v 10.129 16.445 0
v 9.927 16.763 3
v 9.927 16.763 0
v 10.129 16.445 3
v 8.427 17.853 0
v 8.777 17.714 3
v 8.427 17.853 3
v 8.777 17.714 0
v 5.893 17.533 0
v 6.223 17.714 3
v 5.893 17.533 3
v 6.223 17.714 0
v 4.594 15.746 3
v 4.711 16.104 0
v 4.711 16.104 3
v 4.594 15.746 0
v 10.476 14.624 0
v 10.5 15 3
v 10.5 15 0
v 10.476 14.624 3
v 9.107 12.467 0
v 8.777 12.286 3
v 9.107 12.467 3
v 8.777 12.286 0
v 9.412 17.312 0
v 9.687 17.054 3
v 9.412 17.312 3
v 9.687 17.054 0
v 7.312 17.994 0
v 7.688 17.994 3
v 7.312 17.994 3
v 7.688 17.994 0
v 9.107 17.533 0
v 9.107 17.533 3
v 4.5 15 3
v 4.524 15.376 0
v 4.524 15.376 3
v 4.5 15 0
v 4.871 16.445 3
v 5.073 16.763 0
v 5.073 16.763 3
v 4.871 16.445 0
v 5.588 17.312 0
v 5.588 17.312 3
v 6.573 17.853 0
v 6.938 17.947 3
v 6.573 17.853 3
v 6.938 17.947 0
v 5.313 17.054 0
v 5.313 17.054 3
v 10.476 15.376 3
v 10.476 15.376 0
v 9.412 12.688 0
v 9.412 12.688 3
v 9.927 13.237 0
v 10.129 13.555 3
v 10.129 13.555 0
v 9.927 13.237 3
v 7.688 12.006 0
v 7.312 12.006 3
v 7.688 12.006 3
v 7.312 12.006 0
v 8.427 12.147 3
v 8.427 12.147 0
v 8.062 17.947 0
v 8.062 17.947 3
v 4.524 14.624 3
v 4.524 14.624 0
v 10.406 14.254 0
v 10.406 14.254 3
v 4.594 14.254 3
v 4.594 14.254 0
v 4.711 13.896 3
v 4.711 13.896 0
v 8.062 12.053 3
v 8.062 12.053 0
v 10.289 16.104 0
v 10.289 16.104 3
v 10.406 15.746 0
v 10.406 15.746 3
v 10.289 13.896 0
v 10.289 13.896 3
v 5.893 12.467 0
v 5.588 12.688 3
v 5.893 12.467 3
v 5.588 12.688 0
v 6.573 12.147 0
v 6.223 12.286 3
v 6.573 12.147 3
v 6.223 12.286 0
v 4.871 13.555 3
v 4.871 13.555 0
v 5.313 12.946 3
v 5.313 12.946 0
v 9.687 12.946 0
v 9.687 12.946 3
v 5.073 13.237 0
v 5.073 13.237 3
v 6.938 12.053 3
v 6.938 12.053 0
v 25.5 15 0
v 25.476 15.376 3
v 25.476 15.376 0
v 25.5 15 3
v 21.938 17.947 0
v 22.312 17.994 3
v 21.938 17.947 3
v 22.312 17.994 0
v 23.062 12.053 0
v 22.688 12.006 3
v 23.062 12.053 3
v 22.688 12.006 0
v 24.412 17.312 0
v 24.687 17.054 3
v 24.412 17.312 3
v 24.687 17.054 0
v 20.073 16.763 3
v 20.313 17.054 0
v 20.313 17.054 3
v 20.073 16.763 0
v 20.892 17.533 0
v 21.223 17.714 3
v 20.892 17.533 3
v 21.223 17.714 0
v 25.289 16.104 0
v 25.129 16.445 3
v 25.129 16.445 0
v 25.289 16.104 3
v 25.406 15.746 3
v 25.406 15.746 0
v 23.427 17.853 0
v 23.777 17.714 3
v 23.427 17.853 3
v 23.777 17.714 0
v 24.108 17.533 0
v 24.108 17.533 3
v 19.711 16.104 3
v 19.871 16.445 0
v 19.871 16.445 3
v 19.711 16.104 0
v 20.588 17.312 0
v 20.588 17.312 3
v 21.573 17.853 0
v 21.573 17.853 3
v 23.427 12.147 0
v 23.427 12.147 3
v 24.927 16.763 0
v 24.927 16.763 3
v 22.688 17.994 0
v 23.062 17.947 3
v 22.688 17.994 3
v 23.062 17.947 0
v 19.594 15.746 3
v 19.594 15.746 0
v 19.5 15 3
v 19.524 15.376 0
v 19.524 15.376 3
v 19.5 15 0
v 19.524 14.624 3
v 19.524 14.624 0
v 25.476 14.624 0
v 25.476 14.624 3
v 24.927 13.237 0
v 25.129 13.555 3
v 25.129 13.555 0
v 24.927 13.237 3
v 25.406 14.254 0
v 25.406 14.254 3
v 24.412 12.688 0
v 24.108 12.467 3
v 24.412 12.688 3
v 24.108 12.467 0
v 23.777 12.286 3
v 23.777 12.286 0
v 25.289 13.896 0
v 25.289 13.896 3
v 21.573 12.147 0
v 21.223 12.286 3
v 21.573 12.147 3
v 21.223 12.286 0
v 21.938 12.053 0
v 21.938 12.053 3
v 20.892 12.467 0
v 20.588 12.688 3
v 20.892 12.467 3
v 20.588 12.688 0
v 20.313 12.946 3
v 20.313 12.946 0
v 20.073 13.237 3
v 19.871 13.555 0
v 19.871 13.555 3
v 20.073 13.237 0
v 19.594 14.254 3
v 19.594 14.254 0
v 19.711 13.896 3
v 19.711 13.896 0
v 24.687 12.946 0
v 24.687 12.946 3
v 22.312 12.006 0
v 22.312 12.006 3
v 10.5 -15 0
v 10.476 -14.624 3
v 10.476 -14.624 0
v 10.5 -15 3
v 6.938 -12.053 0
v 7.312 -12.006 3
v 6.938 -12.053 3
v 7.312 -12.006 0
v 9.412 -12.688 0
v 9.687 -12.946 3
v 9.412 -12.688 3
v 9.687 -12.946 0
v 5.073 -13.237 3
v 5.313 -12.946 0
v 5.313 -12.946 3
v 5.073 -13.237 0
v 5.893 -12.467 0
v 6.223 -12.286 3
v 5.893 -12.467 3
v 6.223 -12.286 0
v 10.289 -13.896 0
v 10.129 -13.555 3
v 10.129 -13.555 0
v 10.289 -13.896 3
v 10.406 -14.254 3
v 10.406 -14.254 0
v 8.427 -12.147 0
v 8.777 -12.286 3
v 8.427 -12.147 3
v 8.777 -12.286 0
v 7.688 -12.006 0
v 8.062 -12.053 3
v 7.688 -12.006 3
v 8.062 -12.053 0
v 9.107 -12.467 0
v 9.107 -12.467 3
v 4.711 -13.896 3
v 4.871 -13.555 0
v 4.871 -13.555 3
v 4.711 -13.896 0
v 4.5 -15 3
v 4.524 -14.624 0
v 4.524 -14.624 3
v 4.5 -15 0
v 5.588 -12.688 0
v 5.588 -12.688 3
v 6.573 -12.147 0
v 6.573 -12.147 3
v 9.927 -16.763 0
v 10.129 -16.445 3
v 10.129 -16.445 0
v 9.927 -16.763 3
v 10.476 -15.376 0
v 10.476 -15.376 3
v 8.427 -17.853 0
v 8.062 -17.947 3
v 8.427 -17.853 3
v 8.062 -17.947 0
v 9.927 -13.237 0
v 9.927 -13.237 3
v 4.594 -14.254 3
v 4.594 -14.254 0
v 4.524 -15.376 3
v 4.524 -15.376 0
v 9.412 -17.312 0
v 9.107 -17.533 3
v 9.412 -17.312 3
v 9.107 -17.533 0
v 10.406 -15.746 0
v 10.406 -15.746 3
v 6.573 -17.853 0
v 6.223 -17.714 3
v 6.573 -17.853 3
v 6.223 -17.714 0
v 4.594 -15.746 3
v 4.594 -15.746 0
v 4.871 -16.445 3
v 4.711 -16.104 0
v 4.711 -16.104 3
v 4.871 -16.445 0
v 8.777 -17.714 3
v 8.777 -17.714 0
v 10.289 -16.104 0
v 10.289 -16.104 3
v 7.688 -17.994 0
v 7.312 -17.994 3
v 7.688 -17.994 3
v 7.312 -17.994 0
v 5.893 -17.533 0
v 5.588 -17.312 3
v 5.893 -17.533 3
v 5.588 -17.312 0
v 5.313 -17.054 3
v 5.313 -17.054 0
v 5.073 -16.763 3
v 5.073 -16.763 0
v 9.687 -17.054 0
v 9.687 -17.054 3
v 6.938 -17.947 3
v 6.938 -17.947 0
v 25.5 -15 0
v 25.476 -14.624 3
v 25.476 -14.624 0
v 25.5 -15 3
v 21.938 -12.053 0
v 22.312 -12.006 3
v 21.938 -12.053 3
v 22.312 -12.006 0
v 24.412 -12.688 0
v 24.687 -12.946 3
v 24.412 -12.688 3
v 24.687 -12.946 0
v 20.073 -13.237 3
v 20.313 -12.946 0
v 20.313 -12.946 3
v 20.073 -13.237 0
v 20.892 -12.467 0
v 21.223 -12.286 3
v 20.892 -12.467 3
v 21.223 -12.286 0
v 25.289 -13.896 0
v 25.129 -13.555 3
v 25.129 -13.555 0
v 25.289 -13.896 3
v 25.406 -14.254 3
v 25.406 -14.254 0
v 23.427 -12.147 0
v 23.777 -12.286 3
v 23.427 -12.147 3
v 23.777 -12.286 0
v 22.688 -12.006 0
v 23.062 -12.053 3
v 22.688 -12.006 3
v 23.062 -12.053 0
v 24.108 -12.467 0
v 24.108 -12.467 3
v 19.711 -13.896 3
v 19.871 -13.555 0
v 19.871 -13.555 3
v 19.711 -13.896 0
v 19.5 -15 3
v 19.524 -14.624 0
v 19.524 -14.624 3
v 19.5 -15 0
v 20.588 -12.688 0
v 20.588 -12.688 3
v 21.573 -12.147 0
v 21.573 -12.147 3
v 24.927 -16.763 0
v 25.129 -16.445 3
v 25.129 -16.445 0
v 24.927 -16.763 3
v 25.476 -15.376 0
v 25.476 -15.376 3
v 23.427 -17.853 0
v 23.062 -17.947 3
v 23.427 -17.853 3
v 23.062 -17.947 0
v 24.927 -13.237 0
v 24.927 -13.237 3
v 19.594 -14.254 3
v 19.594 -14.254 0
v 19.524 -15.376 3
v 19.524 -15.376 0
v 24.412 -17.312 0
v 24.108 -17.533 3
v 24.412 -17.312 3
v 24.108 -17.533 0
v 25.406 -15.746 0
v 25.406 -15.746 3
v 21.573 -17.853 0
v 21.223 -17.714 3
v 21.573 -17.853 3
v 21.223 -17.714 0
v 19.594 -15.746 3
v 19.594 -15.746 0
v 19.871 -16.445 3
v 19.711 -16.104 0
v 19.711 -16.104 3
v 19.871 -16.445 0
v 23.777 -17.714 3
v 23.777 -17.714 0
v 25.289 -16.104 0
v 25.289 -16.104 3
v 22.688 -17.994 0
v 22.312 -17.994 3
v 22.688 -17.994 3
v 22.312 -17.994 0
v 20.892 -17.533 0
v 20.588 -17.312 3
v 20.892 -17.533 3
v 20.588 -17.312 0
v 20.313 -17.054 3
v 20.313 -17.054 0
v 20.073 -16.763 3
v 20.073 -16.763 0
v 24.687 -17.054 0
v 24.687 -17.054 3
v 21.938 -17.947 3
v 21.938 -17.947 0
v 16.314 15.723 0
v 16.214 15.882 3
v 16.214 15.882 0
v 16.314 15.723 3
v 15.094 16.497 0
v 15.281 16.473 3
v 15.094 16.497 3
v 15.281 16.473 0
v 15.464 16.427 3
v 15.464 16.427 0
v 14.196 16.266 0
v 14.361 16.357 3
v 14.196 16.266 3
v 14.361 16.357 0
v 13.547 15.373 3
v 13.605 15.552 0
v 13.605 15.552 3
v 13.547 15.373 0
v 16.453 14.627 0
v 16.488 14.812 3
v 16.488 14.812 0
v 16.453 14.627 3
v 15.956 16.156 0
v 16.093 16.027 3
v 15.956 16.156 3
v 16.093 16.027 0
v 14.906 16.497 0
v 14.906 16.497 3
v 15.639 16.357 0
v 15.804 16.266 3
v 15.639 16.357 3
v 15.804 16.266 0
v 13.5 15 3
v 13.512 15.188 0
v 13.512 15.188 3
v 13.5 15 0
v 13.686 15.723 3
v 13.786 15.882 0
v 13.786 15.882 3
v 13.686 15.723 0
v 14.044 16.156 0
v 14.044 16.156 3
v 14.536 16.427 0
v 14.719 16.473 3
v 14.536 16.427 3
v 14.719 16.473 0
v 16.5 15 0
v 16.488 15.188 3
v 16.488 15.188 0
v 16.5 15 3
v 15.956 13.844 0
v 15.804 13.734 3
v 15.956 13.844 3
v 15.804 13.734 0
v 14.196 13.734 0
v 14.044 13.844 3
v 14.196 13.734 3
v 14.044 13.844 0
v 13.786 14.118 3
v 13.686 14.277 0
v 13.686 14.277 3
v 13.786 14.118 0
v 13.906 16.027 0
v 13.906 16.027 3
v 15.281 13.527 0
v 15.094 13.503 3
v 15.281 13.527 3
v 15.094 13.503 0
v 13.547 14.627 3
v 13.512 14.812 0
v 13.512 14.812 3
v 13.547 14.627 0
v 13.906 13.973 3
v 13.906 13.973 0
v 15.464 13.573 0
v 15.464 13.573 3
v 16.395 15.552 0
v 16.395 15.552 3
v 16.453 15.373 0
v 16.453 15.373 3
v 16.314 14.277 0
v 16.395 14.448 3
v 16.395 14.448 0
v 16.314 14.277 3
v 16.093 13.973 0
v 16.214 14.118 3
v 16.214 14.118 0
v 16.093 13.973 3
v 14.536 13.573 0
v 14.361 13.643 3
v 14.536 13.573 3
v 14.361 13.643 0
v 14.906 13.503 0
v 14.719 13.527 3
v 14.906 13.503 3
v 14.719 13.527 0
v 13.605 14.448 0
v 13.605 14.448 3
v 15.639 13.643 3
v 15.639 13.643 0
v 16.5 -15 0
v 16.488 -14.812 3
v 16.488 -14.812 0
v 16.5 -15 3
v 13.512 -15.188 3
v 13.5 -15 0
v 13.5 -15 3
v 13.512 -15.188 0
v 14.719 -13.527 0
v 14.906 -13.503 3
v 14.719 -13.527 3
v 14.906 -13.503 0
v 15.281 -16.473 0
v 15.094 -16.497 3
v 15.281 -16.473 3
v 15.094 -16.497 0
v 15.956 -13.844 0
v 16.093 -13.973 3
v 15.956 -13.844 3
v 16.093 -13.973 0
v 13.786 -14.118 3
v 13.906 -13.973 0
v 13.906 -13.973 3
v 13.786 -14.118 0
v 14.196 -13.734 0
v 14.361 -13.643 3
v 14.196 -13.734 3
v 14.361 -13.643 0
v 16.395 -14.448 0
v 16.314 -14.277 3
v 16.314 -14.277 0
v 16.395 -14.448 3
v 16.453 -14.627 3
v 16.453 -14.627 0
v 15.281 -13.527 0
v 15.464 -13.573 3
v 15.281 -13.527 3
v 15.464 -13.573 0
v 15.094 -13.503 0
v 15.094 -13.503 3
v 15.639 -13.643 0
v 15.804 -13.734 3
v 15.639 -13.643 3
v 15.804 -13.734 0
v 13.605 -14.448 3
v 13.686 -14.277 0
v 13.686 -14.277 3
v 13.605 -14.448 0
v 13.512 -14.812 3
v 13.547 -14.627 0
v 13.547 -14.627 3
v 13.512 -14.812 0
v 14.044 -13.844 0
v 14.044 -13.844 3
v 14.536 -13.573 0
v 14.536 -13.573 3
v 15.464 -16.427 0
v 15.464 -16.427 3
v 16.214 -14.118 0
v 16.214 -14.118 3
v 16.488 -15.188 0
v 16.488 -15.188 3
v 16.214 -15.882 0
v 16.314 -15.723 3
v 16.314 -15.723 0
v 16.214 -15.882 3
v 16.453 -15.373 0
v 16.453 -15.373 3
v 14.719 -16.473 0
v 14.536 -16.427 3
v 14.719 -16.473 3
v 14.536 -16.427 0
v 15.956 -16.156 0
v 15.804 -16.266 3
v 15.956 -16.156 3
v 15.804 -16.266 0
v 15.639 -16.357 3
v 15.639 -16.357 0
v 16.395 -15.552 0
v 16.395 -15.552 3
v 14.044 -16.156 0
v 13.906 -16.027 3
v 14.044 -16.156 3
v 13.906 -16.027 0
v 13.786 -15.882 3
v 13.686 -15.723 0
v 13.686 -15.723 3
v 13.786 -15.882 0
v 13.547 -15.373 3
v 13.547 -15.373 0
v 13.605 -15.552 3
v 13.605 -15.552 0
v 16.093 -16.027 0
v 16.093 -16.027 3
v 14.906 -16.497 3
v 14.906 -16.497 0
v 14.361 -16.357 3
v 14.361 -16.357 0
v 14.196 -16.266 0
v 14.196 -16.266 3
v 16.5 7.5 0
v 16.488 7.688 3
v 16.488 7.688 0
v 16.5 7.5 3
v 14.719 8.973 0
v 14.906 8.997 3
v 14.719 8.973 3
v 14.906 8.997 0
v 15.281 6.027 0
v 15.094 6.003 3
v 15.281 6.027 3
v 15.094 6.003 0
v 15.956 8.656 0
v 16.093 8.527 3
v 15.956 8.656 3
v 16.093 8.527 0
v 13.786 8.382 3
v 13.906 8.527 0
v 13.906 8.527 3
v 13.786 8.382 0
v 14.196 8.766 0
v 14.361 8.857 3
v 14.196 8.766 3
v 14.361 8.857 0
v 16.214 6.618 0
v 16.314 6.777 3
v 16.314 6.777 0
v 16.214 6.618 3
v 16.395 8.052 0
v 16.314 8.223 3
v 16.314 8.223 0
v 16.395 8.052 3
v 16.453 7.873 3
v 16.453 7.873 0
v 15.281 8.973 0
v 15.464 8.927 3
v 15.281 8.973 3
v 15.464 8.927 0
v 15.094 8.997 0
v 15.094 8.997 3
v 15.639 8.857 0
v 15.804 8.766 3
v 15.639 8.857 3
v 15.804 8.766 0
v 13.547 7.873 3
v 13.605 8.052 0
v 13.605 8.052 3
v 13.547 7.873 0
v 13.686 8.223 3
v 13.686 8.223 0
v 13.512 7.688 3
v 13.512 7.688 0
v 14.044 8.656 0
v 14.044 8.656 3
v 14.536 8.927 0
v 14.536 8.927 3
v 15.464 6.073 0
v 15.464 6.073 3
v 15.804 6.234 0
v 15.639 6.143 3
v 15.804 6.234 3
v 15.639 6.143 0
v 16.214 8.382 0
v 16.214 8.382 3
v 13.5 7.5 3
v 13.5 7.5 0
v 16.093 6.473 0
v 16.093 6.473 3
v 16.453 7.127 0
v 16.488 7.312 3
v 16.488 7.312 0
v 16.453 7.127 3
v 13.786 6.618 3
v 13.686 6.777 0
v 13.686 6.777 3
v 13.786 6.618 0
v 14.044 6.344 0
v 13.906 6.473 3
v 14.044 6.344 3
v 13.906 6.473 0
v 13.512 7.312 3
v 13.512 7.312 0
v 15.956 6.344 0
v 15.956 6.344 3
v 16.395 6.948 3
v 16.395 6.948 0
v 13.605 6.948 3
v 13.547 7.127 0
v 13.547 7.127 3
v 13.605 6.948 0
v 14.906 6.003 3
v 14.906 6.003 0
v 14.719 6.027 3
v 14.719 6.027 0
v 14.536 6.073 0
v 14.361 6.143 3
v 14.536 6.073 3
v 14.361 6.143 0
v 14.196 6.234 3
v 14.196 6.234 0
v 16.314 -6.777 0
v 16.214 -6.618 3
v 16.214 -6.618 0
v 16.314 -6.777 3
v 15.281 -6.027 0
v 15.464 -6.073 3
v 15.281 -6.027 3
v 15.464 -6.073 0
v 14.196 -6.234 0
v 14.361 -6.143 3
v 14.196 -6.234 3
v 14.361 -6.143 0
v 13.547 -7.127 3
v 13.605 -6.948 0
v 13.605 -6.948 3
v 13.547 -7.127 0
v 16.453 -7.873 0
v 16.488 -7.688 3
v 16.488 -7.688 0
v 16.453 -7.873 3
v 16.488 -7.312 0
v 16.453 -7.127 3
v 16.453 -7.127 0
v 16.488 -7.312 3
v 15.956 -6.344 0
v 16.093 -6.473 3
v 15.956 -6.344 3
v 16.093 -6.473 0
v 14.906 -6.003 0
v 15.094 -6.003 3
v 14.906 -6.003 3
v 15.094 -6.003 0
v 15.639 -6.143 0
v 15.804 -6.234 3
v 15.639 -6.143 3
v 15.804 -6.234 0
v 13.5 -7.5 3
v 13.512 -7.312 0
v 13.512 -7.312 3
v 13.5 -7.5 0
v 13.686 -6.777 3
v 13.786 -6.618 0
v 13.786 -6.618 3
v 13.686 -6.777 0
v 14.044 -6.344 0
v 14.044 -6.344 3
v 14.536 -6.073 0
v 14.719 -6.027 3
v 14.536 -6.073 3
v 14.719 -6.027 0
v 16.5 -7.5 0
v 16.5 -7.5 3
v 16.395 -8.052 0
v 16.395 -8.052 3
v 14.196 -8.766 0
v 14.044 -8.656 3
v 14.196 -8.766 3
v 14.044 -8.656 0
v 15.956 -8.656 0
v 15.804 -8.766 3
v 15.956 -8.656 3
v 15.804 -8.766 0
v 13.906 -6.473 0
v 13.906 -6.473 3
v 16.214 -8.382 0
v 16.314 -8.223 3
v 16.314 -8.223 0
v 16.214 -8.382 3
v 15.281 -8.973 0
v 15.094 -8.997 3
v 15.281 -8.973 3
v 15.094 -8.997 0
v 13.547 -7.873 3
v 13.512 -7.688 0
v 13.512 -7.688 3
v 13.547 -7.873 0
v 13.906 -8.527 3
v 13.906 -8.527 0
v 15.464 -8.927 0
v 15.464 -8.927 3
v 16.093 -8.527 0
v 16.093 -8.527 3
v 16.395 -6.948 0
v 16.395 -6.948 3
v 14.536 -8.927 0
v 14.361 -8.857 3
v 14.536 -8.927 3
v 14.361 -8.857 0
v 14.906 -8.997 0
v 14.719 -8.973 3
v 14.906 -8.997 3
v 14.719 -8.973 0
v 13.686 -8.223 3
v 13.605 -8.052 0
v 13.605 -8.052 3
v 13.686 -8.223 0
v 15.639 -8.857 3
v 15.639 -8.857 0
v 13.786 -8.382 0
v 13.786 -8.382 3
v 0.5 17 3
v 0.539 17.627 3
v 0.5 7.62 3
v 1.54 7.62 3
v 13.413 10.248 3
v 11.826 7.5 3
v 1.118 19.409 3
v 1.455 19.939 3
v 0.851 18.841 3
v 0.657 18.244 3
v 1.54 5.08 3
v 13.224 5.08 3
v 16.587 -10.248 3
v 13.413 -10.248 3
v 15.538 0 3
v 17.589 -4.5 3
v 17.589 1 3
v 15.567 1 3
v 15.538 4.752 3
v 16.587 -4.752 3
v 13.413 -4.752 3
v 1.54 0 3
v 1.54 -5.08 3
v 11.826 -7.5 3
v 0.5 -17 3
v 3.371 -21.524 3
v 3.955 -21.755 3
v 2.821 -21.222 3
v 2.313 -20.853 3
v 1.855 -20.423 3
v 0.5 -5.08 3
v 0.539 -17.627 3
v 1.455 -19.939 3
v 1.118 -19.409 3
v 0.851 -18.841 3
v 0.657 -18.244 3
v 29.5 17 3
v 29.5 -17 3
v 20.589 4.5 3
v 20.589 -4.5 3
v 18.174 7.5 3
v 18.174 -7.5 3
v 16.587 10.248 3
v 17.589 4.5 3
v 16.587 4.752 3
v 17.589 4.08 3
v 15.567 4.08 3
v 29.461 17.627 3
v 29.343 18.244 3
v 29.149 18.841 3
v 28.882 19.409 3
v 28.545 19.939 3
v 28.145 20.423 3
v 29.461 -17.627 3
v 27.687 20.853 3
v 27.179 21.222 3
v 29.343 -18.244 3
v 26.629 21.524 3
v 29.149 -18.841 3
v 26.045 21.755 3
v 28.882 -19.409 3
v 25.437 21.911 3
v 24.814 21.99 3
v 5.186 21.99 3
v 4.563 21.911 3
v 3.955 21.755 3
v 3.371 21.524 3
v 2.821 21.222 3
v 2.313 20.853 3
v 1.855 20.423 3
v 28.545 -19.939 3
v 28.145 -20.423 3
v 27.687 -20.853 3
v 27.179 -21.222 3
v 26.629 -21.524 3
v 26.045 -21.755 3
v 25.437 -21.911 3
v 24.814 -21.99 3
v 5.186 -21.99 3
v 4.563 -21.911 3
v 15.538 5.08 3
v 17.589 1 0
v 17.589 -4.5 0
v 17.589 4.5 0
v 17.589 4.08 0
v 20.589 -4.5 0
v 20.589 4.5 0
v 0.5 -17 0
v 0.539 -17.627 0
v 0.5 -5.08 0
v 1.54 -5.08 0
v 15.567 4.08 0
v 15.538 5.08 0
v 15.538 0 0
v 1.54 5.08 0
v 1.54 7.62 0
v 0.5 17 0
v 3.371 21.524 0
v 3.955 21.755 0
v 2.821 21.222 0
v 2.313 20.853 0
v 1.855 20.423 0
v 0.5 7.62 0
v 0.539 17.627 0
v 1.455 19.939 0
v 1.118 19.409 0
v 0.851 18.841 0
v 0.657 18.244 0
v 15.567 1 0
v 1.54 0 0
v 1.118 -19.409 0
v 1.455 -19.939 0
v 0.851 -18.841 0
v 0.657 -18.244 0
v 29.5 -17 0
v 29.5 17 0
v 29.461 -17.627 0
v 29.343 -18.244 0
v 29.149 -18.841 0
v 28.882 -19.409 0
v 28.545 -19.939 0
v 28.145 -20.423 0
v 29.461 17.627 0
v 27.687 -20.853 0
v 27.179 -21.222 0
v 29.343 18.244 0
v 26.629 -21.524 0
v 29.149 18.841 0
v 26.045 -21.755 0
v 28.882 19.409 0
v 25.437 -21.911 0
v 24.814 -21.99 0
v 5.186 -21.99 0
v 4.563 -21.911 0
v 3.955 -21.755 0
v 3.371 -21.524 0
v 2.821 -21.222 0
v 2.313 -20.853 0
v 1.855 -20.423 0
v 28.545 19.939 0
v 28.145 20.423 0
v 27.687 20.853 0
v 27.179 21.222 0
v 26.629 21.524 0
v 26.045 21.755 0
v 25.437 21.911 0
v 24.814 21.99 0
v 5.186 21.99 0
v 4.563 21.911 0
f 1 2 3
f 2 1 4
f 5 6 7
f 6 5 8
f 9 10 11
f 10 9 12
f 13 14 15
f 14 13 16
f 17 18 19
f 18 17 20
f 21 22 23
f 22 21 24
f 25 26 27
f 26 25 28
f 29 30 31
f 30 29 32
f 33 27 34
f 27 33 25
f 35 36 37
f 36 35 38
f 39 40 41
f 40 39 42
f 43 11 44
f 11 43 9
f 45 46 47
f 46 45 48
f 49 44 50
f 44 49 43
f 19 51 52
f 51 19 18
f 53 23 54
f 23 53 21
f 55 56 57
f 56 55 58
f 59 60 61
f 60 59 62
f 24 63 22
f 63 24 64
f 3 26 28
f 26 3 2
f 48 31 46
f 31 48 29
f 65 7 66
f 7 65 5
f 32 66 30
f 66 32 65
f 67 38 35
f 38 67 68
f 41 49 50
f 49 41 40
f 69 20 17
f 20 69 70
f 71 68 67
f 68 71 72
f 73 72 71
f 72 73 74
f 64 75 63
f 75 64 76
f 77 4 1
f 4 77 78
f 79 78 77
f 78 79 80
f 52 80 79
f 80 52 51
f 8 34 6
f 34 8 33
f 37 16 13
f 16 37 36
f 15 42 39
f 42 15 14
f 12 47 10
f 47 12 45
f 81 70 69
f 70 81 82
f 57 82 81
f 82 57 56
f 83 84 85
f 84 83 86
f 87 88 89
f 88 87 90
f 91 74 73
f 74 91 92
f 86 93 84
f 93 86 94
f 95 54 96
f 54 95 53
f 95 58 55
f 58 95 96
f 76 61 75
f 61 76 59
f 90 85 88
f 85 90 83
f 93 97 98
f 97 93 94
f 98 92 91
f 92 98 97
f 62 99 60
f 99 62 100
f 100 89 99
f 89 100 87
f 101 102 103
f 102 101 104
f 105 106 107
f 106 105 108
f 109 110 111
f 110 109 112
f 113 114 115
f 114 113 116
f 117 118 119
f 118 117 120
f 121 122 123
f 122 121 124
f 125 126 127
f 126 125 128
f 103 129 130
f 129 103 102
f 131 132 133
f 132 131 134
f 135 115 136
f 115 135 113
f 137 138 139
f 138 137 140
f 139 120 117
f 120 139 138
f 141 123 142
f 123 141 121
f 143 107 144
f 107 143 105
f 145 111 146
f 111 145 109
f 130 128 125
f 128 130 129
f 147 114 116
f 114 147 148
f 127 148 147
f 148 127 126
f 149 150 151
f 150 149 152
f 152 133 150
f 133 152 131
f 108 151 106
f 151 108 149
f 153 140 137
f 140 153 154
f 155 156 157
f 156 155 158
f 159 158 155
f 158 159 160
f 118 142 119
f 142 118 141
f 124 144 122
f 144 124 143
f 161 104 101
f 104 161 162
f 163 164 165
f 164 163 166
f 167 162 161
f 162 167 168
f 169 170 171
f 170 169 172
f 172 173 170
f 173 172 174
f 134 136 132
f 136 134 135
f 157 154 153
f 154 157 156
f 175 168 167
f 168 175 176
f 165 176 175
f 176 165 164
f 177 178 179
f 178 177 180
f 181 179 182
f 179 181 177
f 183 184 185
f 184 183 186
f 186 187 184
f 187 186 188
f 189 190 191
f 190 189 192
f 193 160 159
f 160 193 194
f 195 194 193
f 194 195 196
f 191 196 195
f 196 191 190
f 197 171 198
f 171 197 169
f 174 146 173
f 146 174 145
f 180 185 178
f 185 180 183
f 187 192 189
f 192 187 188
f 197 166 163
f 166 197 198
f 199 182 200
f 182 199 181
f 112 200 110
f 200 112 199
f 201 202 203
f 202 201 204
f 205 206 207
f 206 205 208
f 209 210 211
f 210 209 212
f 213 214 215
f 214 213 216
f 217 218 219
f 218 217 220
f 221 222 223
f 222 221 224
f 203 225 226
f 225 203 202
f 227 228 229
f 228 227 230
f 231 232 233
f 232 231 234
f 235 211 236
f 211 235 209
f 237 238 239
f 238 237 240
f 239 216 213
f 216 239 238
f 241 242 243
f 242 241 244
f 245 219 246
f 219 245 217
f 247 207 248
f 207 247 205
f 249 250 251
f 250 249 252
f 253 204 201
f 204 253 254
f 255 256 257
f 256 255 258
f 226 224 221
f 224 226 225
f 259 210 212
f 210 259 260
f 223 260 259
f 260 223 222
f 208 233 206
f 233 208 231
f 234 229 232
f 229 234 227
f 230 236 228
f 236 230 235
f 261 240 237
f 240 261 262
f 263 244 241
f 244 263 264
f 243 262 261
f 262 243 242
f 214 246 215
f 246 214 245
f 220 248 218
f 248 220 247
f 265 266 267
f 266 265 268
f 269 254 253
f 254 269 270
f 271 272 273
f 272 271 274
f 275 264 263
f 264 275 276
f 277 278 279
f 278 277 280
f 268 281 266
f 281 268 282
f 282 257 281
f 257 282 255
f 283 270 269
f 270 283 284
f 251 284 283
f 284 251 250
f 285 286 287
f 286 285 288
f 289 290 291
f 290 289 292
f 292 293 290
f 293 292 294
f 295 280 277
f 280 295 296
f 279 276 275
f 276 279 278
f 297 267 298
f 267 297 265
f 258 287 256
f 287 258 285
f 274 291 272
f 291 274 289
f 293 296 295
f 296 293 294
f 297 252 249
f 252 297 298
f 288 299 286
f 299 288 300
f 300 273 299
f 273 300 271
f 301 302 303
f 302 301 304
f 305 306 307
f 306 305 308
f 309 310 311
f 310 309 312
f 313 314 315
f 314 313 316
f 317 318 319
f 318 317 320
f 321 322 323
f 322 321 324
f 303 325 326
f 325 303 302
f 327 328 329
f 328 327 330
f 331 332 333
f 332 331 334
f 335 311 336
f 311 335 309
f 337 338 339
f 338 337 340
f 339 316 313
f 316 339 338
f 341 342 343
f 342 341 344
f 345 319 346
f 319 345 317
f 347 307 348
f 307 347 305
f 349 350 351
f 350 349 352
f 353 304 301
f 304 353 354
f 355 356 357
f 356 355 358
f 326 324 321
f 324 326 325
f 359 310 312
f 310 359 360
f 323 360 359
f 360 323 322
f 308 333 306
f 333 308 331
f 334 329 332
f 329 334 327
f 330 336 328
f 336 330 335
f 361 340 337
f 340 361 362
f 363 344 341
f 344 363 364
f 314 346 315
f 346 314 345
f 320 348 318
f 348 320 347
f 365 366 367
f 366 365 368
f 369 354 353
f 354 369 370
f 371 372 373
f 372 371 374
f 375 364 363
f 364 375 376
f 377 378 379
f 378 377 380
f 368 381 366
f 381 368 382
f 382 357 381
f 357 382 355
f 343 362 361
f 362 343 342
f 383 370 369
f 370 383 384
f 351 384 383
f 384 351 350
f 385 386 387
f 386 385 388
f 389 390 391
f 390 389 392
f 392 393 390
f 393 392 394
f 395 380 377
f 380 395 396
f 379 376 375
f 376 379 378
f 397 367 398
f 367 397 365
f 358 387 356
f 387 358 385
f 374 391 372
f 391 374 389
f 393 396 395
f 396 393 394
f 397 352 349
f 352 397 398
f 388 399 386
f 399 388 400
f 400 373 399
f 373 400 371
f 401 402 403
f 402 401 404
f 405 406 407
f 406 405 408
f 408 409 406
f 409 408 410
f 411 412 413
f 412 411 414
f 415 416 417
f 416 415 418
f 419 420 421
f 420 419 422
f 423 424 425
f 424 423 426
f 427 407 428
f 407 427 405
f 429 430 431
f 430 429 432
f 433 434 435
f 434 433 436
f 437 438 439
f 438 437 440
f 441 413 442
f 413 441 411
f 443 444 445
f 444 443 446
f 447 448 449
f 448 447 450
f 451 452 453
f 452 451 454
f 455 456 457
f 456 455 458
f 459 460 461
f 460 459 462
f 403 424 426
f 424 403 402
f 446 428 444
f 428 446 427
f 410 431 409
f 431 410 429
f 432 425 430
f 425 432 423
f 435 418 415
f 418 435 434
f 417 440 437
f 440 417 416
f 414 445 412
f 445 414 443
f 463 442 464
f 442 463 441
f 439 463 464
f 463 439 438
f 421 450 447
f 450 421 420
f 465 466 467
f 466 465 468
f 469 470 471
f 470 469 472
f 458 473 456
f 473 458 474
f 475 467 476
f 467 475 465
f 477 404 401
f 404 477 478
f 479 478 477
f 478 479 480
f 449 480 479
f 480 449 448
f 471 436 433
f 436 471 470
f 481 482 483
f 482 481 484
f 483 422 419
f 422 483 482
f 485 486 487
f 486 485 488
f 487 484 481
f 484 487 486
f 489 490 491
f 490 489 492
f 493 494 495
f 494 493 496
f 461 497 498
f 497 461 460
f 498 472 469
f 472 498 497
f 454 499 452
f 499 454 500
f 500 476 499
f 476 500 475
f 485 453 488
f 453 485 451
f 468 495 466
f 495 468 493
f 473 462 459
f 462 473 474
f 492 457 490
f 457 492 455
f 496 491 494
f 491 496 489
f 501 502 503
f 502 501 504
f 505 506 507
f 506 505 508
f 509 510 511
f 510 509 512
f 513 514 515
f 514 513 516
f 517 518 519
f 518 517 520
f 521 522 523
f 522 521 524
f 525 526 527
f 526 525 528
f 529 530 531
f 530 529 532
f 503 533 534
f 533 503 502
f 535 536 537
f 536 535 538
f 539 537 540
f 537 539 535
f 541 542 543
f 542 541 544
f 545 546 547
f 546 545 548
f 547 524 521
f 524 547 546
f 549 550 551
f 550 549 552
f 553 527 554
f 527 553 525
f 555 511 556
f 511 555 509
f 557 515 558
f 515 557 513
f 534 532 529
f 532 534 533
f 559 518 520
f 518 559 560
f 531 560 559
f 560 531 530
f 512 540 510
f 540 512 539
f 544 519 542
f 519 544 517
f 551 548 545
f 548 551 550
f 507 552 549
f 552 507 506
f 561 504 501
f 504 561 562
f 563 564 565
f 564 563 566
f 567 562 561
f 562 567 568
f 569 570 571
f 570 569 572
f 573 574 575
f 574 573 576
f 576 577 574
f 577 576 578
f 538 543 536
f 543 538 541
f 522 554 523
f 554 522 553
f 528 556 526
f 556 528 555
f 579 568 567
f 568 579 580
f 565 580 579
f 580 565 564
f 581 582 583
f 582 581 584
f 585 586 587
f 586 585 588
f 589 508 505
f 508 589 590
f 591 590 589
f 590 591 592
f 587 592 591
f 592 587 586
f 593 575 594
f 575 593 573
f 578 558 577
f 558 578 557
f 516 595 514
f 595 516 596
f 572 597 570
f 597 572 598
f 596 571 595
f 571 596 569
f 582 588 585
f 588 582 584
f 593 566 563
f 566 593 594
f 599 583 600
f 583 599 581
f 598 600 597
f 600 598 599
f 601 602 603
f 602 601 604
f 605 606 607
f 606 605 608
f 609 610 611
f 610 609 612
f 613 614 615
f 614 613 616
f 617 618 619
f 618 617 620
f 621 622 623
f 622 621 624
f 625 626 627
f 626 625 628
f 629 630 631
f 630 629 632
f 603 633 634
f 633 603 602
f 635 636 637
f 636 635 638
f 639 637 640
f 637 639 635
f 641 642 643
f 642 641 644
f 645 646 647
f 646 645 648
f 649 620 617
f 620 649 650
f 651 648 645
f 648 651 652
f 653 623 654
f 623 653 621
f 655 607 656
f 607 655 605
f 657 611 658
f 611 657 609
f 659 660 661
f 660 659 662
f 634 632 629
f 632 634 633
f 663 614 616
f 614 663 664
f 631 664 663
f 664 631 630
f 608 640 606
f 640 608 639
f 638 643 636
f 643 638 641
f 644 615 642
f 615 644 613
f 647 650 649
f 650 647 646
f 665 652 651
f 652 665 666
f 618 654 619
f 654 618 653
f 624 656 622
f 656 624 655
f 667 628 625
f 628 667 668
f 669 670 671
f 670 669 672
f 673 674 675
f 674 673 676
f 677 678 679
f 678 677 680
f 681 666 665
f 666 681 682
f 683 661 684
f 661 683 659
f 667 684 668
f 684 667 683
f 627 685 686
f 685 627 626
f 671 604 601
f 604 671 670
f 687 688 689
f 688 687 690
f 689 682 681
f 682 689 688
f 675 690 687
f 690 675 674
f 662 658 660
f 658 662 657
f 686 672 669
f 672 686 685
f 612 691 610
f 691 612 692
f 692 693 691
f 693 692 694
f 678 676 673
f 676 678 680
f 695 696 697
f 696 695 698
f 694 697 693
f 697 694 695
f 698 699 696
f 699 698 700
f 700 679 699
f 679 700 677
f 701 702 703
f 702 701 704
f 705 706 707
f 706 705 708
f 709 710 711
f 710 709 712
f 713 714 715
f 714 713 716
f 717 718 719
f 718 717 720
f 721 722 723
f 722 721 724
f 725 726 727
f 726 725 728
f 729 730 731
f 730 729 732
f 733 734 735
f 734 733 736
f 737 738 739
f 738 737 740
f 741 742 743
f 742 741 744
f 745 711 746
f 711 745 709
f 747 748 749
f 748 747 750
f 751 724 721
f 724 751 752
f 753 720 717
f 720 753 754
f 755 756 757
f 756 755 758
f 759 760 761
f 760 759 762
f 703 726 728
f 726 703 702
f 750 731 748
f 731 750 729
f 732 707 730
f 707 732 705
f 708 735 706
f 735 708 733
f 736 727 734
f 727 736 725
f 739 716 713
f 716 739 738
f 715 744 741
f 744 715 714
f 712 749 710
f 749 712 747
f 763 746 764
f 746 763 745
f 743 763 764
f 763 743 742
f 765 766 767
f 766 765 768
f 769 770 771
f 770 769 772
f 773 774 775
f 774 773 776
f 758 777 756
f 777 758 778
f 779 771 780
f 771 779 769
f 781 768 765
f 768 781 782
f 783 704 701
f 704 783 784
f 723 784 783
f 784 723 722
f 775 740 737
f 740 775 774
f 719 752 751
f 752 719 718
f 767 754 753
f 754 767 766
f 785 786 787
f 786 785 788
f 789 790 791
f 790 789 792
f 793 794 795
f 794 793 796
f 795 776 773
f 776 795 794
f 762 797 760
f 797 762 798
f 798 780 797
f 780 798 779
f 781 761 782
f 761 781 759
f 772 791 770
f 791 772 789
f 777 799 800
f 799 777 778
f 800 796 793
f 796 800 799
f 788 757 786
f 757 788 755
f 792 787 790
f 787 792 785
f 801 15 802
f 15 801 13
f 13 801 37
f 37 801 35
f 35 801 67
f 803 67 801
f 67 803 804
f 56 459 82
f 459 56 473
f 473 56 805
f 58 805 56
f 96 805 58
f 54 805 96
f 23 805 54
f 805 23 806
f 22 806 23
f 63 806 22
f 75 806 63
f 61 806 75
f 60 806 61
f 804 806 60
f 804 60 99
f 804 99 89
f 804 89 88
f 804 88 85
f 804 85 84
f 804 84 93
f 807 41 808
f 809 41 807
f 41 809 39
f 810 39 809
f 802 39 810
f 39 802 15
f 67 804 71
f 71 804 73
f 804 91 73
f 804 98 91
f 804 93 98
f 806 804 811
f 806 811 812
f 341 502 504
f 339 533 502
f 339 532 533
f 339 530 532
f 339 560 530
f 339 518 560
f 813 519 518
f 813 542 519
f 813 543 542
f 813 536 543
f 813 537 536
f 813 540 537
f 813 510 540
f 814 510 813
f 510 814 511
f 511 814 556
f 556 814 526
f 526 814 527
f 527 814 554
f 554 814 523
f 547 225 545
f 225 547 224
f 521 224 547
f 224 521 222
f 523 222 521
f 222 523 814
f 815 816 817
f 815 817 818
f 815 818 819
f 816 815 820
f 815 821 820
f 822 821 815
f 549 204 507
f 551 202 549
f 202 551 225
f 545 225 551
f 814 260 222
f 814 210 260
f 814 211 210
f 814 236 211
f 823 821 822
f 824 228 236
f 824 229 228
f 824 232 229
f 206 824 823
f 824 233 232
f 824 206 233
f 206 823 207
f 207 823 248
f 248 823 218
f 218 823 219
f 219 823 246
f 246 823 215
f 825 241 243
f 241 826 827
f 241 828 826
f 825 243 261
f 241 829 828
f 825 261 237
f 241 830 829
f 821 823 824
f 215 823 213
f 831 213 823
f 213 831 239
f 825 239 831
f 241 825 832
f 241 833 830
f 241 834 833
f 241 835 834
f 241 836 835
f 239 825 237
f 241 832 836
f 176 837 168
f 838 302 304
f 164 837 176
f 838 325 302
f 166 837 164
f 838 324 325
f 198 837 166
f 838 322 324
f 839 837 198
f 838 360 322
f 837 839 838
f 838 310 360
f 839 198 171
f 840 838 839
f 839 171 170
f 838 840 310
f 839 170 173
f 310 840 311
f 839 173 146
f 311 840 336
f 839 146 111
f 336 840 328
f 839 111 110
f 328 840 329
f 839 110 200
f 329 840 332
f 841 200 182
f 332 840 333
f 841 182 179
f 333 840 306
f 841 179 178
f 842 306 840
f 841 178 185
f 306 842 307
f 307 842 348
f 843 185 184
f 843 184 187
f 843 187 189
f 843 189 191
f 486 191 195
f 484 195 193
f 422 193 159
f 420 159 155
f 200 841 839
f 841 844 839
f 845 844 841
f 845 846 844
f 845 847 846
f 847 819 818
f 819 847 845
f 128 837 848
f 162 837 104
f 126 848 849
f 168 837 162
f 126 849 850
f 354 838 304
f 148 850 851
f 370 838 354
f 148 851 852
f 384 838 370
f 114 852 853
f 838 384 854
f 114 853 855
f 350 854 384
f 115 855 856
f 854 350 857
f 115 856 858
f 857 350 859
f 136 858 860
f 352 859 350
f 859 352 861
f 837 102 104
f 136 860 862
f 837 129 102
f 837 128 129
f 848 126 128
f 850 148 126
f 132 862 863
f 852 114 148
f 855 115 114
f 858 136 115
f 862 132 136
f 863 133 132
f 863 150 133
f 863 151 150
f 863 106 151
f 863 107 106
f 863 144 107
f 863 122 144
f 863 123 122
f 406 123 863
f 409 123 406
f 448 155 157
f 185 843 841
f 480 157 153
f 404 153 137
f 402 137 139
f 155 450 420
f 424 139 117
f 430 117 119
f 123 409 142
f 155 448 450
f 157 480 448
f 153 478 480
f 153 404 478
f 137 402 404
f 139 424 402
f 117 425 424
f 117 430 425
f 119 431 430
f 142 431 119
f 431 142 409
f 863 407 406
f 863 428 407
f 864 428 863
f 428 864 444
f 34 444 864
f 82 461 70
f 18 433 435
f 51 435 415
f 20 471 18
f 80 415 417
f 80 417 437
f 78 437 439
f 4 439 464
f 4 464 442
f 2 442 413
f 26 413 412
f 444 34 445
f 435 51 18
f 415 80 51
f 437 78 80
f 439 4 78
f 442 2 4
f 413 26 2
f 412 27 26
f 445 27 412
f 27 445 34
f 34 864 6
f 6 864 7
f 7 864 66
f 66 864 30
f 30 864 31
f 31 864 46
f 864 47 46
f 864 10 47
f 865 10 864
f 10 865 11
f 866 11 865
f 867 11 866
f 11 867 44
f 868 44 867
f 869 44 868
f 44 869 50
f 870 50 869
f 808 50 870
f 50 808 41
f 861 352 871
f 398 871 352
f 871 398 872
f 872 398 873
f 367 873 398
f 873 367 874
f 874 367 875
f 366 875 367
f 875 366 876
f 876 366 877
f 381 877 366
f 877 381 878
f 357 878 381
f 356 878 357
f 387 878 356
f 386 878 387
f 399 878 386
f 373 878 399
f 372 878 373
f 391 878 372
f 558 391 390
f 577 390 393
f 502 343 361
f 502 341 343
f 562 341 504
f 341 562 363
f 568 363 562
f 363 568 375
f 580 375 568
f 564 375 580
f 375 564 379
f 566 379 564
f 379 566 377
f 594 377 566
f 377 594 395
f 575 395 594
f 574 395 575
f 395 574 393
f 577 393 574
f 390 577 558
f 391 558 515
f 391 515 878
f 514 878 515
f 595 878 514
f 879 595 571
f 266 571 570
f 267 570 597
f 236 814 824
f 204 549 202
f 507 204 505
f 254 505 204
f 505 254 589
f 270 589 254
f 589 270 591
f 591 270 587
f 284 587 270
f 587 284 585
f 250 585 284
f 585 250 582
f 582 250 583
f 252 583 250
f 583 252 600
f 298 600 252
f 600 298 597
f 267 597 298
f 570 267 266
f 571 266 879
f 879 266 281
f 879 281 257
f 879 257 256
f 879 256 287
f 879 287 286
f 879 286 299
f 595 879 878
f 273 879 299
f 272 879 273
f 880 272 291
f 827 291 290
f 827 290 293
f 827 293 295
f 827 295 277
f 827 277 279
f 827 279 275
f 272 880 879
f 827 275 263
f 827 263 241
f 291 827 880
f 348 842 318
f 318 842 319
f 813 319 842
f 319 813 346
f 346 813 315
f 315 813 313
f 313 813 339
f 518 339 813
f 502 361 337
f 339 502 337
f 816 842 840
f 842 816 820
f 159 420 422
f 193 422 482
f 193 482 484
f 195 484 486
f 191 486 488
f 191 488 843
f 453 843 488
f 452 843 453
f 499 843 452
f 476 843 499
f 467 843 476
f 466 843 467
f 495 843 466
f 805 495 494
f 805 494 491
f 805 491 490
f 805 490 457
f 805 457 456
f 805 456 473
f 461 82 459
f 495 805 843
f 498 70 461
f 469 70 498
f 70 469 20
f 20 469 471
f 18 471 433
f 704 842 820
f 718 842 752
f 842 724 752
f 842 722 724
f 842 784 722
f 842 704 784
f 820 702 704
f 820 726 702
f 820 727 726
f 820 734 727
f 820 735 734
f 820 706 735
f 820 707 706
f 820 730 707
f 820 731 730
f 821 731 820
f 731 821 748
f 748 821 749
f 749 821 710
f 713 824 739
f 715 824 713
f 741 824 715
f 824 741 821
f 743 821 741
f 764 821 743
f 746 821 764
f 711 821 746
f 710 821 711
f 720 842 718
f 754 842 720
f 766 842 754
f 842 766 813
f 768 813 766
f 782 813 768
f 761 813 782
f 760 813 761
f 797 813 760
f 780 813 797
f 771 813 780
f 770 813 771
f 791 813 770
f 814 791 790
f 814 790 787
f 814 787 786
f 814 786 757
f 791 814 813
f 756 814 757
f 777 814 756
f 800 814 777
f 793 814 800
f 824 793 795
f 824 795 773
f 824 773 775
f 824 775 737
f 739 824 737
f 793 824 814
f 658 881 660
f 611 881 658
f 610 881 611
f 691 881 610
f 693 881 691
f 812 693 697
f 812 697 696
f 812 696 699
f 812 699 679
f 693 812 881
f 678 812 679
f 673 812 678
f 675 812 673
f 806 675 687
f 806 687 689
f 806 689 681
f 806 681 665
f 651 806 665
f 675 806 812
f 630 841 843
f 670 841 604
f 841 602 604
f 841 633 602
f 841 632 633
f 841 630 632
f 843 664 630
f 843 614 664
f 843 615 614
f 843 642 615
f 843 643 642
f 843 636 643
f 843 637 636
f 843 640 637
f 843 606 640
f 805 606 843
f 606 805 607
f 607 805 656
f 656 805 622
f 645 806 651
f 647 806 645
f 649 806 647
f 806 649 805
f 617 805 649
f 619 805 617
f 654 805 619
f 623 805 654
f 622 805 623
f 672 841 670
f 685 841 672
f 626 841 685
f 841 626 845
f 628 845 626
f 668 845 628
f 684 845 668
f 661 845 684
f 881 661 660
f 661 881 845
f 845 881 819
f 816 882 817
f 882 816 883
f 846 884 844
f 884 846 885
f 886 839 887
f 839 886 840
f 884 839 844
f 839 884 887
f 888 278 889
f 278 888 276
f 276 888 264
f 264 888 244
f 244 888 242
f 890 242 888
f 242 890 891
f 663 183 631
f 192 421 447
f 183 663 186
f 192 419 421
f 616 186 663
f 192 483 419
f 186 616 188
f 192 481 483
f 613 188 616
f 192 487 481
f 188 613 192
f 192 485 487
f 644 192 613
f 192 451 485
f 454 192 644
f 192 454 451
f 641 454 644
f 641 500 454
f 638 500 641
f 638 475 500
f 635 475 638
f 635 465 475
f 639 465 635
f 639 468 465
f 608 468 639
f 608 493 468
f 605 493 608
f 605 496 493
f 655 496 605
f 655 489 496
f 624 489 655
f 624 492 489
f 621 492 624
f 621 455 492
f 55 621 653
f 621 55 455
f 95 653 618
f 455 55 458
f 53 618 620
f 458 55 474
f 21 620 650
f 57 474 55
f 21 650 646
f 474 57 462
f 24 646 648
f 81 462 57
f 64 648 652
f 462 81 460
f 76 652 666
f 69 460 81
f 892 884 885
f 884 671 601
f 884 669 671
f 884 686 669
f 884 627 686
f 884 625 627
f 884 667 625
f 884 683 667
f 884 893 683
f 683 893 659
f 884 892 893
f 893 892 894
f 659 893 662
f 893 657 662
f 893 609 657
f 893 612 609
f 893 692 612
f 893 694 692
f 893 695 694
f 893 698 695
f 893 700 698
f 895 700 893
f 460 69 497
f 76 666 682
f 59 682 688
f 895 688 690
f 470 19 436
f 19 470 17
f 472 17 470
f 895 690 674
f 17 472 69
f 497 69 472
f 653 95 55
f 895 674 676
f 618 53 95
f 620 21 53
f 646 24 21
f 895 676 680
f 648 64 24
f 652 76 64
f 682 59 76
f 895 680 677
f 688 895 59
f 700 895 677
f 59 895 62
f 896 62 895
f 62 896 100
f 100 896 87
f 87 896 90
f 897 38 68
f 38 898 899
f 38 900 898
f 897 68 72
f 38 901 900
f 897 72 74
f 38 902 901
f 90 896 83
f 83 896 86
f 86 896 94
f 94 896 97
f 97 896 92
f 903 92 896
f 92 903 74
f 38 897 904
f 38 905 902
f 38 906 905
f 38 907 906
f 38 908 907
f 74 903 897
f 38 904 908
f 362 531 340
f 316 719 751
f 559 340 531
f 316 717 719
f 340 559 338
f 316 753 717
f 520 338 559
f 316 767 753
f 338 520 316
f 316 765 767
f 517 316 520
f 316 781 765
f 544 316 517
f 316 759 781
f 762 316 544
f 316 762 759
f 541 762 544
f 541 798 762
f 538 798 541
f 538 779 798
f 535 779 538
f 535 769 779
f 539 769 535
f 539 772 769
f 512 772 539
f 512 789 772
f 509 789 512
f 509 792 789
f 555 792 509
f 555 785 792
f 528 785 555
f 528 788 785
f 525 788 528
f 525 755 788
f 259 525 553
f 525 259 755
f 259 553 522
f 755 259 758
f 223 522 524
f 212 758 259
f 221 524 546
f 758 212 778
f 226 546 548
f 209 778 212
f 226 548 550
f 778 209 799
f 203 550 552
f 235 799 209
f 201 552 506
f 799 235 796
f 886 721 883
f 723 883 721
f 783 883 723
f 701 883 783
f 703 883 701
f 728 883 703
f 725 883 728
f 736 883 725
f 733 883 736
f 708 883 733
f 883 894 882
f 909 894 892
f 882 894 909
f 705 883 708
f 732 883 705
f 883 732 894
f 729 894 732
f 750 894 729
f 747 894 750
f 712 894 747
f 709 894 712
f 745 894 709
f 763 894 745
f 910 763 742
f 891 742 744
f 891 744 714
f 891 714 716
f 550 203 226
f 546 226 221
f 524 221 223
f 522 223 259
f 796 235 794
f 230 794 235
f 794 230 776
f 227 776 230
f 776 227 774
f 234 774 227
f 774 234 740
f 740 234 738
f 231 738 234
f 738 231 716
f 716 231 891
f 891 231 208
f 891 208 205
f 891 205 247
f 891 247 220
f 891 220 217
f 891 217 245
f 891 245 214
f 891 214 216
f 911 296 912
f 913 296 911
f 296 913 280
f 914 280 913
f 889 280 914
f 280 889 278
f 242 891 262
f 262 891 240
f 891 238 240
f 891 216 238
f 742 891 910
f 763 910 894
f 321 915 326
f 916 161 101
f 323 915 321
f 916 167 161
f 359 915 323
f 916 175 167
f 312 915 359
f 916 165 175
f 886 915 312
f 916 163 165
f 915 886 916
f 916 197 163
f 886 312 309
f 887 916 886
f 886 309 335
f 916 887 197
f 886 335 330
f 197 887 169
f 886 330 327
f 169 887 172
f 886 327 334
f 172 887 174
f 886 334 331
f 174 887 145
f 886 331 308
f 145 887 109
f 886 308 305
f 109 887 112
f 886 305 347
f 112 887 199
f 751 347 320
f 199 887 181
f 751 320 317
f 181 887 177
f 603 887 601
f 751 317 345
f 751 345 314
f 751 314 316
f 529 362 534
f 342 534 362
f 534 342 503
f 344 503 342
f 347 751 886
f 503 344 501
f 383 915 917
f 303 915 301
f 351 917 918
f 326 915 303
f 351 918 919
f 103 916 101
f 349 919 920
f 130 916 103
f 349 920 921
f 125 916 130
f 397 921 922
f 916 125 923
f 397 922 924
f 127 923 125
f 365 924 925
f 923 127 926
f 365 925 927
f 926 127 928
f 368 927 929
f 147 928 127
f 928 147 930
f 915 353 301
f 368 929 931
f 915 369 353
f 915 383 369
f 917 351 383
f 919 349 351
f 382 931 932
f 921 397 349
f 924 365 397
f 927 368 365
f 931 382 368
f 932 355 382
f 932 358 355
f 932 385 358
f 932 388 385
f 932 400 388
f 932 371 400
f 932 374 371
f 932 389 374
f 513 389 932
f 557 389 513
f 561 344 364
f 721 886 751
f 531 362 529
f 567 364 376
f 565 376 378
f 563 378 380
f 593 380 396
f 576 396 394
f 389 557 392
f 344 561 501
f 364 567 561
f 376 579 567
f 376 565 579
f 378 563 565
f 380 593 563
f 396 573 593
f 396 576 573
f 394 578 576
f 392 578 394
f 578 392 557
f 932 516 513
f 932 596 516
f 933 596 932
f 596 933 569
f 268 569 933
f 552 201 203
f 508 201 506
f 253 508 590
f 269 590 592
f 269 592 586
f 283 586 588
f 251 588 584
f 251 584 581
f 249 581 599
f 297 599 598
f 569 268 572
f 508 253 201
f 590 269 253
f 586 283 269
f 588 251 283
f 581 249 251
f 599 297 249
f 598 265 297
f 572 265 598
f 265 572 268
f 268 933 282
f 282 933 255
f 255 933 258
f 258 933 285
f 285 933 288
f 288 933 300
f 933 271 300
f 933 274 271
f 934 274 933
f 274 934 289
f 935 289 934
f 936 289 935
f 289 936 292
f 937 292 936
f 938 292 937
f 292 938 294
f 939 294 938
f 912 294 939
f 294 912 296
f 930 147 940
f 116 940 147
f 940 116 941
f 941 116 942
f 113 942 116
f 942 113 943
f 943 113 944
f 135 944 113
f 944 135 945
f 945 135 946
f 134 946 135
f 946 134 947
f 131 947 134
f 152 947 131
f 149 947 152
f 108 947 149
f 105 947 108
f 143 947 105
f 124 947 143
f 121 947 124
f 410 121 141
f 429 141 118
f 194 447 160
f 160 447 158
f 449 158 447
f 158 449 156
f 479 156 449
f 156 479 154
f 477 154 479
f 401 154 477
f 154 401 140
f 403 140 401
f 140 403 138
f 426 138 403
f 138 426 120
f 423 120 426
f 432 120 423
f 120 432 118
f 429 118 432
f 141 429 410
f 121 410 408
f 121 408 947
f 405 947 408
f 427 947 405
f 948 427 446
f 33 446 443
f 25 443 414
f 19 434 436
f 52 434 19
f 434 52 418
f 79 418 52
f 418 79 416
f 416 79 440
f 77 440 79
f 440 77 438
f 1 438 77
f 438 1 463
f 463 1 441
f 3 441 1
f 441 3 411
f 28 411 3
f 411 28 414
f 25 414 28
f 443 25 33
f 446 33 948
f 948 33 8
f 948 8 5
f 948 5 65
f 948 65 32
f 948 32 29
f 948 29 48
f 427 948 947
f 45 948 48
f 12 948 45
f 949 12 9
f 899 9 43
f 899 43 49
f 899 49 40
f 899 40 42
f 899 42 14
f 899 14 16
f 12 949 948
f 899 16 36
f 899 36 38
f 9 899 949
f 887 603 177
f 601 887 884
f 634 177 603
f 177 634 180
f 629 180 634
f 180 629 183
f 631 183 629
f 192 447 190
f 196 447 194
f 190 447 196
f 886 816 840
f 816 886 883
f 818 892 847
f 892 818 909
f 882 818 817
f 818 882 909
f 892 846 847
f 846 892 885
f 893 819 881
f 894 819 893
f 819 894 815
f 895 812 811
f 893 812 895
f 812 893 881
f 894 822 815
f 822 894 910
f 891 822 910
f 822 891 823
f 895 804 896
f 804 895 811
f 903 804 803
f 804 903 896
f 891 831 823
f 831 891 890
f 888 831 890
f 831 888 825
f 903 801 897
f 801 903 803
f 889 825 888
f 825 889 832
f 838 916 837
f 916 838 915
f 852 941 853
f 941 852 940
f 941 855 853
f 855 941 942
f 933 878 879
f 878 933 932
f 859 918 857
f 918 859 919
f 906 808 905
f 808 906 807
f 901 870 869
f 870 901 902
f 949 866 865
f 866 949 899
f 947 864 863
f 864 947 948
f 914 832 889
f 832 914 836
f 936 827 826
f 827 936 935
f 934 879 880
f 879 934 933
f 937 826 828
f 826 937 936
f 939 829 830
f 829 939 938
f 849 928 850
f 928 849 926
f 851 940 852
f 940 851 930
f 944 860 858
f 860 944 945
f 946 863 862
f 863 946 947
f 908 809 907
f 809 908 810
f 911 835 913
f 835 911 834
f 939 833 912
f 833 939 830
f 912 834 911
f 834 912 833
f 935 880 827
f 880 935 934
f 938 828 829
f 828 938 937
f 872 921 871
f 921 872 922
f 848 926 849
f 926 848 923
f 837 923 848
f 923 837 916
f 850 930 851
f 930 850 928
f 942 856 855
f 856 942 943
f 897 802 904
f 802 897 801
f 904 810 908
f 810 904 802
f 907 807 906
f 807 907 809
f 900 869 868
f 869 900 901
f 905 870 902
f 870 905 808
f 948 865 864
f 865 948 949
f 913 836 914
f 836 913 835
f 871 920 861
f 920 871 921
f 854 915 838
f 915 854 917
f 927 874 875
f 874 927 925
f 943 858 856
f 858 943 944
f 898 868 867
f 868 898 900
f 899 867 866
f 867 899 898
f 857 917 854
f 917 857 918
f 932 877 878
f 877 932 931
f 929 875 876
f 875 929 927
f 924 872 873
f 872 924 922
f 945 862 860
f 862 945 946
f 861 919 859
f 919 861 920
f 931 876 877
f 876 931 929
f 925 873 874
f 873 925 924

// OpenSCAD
$fn = 50;


difference() {
	union() {
		translate(v = [15.0000000000, 0, 0]) {
			rotate(a = [0, 0, 0]) {
				hull() {
					translate(v = [-9.5000000000, 17.0000000000, 0]) {
						rotate(a = [0, 0, 0]) {
							translate(v = [0, 0, 0]) {
								rotate(a = [0, 0, 0]) {
									cylinder(h = 3, r = 5);
								}
							}
						}
					}
					translate(v = [9.5000000000, 17.0000000000, 0]) {
						rotate(a = [0, 0, 0]) {
							translate(v = [0, 0, 0]) {
								rotate(a = [0, 0, 0]) {
									cylinder(h = 3, r = 5);
								}
							}
						}
					}
					translate(v = [-9.5000000000, -17.0000000000, 0]) {
						rotate(a = [0, 0, 0]) {
							translate(v = [0, 0, 0]) {
								rotate(a = [0, 0, 0]) {
									cylinder(h = 3, r = 5);
								}
							}
						}
					}
					translate(v = [9.5000000000, -17.0000000000, 0]) {
						rotate(a = [0, 0, 0]) {
							translate(v = [0, 0, 0]) {
								rotate(a = [0, 0, 0]) {
									cylinder(h = 3, r = 5);
								}
							}
						}
					}
				}
			}
		}
	}
	union() {
		translate(v = [7.5000000000, 15.0000000000, -125.0000000000]) {
			rotate(a = [0, 0, 0]) {
				cylinder(h = 250, r = 3.0000000000);
			}
		}
		translate(v = [22.5000000000, 15.0000000000, -125.0000000000]) {
			rotate(a = [0, 0, 0]) {
				cylinder(h = 250, r = 3.0000000000);
			}
		}
		translate(v = [7.5000000000, -15.0000000000, -125.0000000000]) {
			rotate(a = [0, 0, 0]) {
				cylinder(h = 250, r = 3.0000000000);
			}
		}
		translate(v = [22.5000000000, -15.0000000000, -125.0000000000]) {
			rotate(a = [0, 0, 0]) {
				cylinder(h = 250, r = 3.0000000000);
			}
		}
		translate(v = [7.5000000000, 15.0000000000, -125.0000000000]) {
			rotate(a = [0, 0, 0]) {
				cylinder(h = 250, r = 1.5000000000);
			}
		}
		translate(v = [15.0000000000, 15.0000000000, -125.0000000000]) {
			rotate(a = [0, 0, 0]) {
				cylinder(h = 250, r = 1.5000000000);
			}
		}
		translate(v = [22.5000000000, 15.0000000000, -125.0000000000]) {
			rotate(a = [0, 0, 0]) {
				cylinder(h = 250, r = 1.5000000000);
			}
		}
		translate(v = [7.5000000000, -15.0000000000, -125.0000000000]) {
			rotate(a = [0, 0, 0]) {
				cylinder(h = 250, r = 1.5000000000);
			}
		}
		translate(v = [15.0000000000, -15.0000000000, -125.0000000000]) {
			rotate(a = [0, 0, 0]) {
				cylinder(h = 250, r = 1.5000000000);
			}
		}
		translate(v = [22.5000000000, -15.0000000000, -125.0000000000]) {
			rotate(a = [0, 0, 0]) {
				cylinder(h = 250, r = 1.5000000000);
			}
		}
		translate(v = [15, 7.5000000000, -125.0000000000]) {
			rotate(a = [0, 0, 0]) {
				cylinder(h = 250, r = 1.5000000000);
			}
		}
		translate(v = [15, -7.5000000000, -125.0000000000]) {
			rotate(a = [0, 0, 0]) {
				cylinder(h = 250, r = 1.5000000000);
			}
		}
		translate(v = [15, 7.5000000000, 3]) {
			rotate(a = [0, 0, 0]) {
				translate(v = [0, 0, 0]) {
					rotate(a = [0, 0, 0]) {
						linear_extrude(height = 2.5000000000) {
							polygon(points = [[3.1735000000, 0.0000000000], [1.5867500000, 2.7483316189], [-1.5867500000, 2.7483316189], [-3.1735000000, 0.0000000000], [-1.5867500000, -2.7483316189], [1.5867500000, -2.7483316189]]);
						}
					}
				}
			}
		}
		translate(v = [15, -7.5000000000, 3]) {
			rotate(a = [0, 0, 0]) {
				translate(v = [0, 0, 0]) {
					rotate(a = [0, 0, 0]) {
						linear_extrude(height = 2.5000000000) {
							polygon(points = [[3.1735000000, 0.0000000000], [1.5867500000, 2.7483316189], [-1.5867500000, 2.7483316189], [-3.1735000000, 0.0000000000], [-1.5867500000, -2.7483316189], [1.5867500000, -2.7483316189]]);
						}
					}
				}
			}
		}
		translate(v = [17.5890000000, -4.5000000000, 0]) {
			rotate(a = [0, 0, 0]) {
				cube(size = [3, 9, 10]);
			}
		}
		translate(v = [-7.0000000000, -9, 0.0000000000]) {
			rotate(a = [0, 0, 0]) {
				cylinder(h = 3, r = 1.5000000000);
			}
		}
		translate(v = [15.5670000000, 1.0000000000, 0]) {
			rotate(a = [0, 0, 0]) {
				cube(size = [5, 3.0800000000, 3]);
			}
		}
		translate(v = [-7.1460000000, -2.5400000000, 0]) {
			rotate(a = [0, 0, 0]) {
				cube(size = [6, 7.6200000000, 3]);
			}
		}
		translate(v = [1.5380000000, 0.0000000000, 0]) {
			rotate(a = [0, 0, 0]) {
				cube(size = [14, 5.0800000000, 3]);
			}
		}
		translate(v = [-1.0000000000, -5.0800000000, 0]) {
			rotate(a = [0, 0, 0]) {
				cube(size = [2.5400000000, 12.7000000000, 3]);
			}
		}
	}
}
